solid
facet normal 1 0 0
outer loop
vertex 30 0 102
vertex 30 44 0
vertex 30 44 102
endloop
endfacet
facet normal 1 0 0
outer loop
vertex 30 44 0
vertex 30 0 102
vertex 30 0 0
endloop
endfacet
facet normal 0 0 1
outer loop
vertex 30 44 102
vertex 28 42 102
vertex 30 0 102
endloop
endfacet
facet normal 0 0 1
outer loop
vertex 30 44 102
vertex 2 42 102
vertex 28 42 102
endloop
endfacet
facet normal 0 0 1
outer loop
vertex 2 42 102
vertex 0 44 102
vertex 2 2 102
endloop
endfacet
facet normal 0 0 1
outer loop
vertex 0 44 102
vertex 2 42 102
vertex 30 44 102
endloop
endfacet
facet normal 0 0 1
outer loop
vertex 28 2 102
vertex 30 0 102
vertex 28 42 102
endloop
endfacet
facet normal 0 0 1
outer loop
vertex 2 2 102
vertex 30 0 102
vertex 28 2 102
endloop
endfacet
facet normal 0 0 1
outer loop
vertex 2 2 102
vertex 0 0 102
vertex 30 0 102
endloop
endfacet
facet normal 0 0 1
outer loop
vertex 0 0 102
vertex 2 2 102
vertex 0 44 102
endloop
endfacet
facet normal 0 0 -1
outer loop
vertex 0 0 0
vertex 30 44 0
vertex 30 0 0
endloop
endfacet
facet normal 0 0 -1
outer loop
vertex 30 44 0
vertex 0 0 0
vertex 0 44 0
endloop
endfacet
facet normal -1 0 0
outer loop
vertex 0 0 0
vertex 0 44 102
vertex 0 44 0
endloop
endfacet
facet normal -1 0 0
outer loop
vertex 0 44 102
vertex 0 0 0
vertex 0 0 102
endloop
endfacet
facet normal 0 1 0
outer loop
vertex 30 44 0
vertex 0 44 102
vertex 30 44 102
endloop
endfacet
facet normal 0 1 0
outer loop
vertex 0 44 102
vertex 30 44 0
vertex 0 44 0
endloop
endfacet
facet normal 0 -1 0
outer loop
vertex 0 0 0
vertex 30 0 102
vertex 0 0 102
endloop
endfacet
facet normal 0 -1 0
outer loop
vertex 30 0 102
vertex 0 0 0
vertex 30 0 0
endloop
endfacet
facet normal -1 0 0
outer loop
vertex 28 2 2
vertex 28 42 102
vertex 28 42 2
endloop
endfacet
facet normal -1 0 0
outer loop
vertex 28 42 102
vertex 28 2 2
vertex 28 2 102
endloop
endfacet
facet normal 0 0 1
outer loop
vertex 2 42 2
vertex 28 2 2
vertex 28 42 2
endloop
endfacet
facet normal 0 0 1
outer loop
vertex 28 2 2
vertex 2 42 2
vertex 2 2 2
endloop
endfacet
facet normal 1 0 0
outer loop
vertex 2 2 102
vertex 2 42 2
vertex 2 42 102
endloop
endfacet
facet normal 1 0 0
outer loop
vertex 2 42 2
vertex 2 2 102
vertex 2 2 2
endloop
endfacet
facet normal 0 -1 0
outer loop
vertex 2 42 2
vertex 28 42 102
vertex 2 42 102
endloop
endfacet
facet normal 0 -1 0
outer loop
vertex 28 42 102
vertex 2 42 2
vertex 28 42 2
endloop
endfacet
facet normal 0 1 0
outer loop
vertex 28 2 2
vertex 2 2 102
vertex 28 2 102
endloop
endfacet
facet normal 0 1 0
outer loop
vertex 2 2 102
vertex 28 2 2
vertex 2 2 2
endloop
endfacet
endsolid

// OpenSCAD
// Skittle Box

trapDoor = 26;
boxWidth = 40;
boxHeight = 100;
wall = 2;

difference(){
    box();
    boxCavity(); 
}

module box(){
    cube([trapDoor+wall*2,boxWidth+wall*2,boxHeight+wall]);
}

module boxCavity(){
    translate([wall,wall,wall])cube([trapDoor,boxWidth,boxHeight+1]);
}
